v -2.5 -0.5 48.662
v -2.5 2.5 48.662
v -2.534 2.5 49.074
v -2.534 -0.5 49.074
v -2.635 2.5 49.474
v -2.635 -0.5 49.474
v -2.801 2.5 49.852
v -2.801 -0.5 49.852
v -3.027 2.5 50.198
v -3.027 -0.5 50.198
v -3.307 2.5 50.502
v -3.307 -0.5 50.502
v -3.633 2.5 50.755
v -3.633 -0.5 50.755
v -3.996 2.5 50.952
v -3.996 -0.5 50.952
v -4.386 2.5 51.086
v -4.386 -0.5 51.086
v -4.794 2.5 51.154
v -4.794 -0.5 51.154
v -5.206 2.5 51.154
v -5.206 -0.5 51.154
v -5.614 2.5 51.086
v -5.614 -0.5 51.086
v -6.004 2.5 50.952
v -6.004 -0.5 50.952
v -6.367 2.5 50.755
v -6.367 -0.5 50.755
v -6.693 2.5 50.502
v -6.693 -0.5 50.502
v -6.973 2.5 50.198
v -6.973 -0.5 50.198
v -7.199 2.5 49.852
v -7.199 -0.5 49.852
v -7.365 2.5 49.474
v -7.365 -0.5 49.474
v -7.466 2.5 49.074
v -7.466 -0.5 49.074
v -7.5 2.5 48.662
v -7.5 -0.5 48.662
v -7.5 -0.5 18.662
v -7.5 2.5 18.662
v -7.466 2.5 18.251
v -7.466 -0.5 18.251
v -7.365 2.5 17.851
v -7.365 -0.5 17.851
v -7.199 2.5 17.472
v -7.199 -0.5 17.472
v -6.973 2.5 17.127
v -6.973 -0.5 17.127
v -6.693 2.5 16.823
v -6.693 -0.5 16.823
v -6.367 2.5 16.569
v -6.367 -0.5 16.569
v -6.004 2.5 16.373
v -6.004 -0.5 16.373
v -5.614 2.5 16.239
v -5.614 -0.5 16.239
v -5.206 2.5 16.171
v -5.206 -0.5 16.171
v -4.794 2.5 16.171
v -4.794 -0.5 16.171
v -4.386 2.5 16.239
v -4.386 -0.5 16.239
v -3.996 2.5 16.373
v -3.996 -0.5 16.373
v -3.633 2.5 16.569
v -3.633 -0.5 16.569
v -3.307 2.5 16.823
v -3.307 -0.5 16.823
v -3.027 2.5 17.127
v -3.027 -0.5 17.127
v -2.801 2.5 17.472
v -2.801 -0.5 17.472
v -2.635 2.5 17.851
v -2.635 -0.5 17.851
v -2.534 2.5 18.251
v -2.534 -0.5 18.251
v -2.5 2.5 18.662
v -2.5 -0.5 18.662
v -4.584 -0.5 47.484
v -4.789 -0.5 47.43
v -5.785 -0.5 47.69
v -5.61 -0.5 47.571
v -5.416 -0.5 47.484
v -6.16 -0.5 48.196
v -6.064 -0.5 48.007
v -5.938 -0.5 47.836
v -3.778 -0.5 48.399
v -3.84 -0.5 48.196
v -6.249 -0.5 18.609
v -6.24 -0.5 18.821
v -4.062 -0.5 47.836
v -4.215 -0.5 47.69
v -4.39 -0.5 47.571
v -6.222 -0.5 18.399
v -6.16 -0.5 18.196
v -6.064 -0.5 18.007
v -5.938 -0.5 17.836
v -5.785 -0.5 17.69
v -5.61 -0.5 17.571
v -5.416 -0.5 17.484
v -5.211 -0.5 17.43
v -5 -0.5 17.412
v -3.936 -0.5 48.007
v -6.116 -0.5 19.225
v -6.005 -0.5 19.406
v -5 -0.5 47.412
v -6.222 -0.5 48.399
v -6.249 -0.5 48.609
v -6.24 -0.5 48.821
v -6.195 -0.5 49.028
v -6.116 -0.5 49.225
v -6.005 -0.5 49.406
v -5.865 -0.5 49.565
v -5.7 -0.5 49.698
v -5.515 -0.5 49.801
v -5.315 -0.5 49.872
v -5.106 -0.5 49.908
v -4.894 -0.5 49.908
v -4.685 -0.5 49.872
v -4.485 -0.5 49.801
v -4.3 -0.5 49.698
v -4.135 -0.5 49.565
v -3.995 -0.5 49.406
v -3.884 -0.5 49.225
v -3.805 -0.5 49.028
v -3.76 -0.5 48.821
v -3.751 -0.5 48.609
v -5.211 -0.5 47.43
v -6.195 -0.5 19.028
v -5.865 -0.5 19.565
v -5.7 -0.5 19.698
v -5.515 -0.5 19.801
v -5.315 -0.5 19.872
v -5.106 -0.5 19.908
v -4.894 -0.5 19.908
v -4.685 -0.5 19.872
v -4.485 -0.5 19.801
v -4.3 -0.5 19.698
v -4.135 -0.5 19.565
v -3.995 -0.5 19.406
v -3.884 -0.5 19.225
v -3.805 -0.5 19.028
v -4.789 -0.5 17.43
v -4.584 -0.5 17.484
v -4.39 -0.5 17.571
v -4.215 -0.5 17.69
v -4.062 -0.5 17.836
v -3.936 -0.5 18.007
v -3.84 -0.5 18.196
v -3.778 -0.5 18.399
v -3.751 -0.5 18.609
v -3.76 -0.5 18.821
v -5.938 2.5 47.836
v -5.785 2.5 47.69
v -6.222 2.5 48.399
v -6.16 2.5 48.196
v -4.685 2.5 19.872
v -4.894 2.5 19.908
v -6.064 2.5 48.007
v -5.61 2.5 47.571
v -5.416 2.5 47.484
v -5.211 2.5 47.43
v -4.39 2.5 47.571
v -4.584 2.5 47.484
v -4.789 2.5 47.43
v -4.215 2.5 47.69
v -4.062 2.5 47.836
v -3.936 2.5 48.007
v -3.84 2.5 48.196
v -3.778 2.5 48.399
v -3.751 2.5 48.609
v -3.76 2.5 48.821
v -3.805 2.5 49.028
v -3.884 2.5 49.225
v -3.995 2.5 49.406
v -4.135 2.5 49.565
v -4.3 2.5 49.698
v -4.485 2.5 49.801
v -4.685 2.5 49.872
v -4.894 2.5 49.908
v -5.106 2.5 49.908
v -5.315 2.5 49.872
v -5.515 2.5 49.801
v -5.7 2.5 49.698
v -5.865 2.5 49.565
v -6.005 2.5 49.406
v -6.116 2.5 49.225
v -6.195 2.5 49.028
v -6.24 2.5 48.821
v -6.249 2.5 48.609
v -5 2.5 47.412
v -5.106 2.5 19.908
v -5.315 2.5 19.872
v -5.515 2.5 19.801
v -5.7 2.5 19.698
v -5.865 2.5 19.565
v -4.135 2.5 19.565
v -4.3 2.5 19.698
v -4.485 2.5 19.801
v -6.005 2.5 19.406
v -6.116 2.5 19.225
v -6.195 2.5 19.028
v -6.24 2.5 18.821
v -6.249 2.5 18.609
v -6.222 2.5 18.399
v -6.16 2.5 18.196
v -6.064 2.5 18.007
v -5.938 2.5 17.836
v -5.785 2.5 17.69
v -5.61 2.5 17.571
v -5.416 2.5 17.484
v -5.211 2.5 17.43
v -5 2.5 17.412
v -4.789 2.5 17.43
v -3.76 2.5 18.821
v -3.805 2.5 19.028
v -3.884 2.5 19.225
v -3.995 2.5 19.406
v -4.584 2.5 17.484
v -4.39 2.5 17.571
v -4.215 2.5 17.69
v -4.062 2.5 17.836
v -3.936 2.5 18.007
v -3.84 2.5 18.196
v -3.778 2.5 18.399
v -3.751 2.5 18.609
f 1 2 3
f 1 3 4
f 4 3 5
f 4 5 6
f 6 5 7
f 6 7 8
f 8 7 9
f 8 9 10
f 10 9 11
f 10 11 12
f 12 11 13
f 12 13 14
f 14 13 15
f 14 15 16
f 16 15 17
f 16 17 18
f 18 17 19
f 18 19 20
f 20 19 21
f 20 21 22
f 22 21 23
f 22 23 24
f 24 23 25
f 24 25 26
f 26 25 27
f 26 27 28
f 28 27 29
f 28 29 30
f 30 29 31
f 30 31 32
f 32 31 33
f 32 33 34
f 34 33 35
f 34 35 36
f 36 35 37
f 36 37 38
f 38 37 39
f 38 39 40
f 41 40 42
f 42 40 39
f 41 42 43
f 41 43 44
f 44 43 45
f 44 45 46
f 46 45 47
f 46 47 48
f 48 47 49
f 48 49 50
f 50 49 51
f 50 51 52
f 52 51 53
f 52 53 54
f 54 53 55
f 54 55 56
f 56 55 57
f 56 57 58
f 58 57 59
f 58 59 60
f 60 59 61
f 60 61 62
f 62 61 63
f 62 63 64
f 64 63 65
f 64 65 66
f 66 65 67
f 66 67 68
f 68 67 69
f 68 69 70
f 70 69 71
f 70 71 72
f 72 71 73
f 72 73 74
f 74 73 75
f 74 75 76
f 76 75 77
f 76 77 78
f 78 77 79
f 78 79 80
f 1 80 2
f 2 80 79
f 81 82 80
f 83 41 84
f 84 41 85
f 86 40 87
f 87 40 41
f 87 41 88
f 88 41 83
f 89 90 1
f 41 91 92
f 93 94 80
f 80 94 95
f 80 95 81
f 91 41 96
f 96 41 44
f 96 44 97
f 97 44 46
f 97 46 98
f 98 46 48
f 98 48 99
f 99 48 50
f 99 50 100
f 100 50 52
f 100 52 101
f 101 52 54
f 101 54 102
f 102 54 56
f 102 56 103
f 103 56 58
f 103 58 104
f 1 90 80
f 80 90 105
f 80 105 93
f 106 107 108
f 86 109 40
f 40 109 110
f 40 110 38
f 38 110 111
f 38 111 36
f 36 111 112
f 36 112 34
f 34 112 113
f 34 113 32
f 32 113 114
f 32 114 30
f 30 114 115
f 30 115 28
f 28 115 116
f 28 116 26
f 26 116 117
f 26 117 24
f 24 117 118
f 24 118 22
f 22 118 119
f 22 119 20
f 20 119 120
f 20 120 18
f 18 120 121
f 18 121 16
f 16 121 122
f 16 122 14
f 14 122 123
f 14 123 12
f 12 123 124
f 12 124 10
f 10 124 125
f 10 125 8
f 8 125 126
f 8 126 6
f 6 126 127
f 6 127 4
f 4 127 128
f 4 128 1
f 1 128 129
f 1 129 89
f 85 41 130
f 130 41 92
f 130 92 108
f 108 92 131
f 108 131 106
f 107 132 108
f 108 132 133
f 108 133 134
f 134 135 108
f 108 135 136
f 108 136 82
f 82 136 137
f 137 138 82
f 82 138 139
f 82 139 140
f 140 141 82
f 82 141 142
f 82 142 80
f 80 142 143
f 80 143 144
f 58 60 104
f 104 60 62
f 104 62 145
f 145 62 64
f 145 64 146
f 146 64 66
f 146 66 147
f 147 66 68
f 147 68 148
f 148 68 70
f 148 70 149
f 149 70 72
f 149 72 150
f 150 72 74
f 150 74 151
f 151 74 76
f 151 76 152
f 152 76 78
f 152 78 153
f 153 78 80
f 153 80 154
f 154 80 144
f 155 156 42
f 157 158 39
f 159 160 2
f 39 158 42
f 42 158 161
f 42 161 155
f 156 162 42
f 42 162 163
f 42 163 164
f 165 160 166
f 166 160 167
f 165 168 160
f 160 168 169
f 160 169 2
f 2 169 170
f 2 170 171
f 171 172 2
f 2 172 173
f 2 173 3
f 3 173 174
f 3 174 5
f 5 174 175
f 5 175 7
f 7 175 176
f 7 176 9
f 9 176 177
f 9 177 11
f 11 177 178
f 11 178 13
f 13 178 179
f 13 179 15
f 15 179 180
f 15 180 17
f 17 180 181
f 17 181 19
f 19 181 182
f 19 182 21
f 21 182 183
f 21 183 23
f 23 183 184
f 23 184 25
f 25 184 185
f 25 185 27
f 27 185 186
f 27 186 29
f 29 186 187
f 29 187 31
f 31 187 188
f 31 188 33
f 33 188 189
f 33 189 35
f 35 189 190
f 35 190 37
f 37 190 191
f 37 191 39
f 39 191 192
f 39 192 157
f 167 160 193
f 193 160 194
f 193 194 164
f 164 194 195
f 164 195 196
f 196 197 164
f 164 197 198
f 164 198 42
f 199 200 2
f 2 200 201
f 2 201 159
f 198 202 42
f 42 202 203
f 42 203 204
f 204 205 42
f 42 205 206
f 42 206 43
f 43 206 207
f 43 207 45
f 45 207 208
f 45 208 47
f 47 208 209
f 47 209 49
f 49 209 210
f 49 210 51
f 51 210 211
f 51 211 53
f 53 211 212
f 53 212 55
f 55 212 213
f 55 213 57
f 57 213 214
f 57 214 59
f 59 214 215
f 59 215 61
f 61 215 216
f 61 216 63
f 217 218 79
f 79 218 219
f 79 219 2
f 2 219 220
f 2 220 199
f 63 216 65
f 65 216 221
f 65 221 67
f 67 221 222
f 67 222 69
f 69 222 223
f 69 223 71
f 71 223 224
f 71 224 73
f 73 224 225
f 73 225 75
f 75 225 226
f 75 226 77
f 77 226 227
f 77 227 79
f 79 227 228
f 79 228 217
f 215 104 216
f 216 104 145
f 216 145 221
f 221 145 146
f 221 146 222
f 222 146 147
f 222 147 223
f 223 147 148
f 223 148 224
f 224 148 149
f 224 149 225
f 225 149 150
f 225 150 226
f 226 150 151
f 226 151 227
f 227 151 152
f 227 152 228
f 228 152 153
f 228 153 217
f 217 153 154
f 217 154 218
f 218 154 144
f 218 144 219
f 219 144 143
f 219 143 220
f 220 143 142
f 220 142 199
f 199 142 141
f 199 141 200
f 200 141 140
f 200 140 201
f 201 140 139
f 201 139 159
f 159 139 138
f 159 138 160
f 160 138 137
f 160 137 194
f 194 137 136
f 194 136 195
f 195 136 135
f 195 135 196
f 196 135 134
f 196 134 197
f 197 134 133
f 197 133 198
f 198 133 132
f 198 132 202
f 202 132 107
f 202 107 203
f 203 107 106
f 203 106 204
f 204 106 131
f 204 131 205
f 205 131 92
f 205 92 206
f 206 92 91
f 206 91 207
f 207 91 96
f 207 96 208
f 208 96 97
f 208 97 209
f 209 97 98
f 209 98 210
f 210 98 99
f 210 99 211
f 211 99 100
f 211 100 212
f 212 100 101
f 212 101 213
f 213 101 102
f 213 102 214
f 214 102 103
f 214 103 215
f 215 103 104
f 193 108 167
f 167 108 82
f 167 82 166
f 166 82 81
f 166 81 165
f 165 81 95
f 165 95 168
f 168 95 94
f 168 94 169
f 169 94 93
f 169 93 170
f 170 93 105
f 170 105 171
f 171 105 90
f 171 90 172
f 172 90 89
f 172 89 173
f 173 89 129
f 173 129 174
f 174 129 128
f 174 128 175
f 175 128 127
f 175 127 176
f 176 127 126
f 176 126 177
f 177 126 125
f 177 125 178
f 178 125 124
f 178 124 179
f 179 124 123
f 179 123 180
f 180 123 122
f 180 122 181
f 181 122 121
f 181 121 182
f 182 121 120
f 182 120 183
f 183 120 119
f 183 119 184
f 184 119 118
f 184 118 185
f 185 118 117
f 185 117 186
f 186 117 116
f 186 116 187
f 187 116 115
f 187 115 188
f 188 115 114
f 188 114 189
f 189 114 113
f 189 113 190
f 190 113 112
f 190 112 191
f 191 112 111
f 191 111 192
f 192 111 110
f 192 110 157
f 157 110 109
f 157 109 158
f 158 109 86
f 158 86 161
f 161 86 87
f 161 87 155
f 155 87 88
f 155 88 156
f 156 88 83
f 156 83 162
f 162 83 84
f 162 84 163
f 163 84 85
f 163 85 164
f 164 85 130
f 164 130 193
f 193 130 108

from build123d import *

# Parameters (mm, degrees)
SKETCH1_R           = 1
BOSS_EXTRUDE1_DEPTH = 3
SKETCH2_R           = 1.25
CUT_EXTRUDE1_DEPTH  = 4
SKETCH3_R           = 1.25
CUT_EXTRUDE2_DEPTH  = 4


with BuildPart() as part:
    # Sketch1 → Boss-Extrude1 (new body)
    with BuildSketch(Plane(origin=(0, 2.5, 0), x_dir=(1, 0, 0), z_dir=(0, 1, 0))):
        with BuildLine():
            Line((-2.5, -48.662329453), (-2.5, -18.662329453))
            ThreePointArc((-2.5, -18.662329453), (-5, -16.162329453), (-7.5, -18.662329453))
            Line((-7.5, -18.662329453), (-7.5, -48.662329453))
            ThreePointArc((-7.5, -48.662329453), (-5, -51.162329453), (-2.5, -48.662329453))
        make_face()
        with Locations((-5, -48.662329453)):
            Circle(SKETCH1_R, mode=Mode.SUBTRACT)
        with Locations((-5, -18.662329453)):
            Circle(SKETCH1_R, mode=Mode.SUBTRACT)
    extrude(amount=-BOSS_EXTRUDE1_DEPTH)

    # Sketch2 → Cut-Extrude1 (cut, through all)
    with BuildSketch(Plane.XZ.offset(0.5)):
        with Locations((-5, 18.662329453)):
            Circle(SKETCH2_R)
    extrude(amount=-CUT_EXTRUDE1_DEPTH, mode=Mode.SUBTRACT)

    # Sketch3 → Cut-Extrude2 (cut, through all)
    with BuildSketch(Plane.XZ.offset(0.5)):
        with Locations((-5, 48.662329453)):
            Circle(SKETCH3_R)
    extrude(amount=-CUT_EXTRUDE2_DEPTH, mode=Mode.SUBTRACT)


solid = part.part
